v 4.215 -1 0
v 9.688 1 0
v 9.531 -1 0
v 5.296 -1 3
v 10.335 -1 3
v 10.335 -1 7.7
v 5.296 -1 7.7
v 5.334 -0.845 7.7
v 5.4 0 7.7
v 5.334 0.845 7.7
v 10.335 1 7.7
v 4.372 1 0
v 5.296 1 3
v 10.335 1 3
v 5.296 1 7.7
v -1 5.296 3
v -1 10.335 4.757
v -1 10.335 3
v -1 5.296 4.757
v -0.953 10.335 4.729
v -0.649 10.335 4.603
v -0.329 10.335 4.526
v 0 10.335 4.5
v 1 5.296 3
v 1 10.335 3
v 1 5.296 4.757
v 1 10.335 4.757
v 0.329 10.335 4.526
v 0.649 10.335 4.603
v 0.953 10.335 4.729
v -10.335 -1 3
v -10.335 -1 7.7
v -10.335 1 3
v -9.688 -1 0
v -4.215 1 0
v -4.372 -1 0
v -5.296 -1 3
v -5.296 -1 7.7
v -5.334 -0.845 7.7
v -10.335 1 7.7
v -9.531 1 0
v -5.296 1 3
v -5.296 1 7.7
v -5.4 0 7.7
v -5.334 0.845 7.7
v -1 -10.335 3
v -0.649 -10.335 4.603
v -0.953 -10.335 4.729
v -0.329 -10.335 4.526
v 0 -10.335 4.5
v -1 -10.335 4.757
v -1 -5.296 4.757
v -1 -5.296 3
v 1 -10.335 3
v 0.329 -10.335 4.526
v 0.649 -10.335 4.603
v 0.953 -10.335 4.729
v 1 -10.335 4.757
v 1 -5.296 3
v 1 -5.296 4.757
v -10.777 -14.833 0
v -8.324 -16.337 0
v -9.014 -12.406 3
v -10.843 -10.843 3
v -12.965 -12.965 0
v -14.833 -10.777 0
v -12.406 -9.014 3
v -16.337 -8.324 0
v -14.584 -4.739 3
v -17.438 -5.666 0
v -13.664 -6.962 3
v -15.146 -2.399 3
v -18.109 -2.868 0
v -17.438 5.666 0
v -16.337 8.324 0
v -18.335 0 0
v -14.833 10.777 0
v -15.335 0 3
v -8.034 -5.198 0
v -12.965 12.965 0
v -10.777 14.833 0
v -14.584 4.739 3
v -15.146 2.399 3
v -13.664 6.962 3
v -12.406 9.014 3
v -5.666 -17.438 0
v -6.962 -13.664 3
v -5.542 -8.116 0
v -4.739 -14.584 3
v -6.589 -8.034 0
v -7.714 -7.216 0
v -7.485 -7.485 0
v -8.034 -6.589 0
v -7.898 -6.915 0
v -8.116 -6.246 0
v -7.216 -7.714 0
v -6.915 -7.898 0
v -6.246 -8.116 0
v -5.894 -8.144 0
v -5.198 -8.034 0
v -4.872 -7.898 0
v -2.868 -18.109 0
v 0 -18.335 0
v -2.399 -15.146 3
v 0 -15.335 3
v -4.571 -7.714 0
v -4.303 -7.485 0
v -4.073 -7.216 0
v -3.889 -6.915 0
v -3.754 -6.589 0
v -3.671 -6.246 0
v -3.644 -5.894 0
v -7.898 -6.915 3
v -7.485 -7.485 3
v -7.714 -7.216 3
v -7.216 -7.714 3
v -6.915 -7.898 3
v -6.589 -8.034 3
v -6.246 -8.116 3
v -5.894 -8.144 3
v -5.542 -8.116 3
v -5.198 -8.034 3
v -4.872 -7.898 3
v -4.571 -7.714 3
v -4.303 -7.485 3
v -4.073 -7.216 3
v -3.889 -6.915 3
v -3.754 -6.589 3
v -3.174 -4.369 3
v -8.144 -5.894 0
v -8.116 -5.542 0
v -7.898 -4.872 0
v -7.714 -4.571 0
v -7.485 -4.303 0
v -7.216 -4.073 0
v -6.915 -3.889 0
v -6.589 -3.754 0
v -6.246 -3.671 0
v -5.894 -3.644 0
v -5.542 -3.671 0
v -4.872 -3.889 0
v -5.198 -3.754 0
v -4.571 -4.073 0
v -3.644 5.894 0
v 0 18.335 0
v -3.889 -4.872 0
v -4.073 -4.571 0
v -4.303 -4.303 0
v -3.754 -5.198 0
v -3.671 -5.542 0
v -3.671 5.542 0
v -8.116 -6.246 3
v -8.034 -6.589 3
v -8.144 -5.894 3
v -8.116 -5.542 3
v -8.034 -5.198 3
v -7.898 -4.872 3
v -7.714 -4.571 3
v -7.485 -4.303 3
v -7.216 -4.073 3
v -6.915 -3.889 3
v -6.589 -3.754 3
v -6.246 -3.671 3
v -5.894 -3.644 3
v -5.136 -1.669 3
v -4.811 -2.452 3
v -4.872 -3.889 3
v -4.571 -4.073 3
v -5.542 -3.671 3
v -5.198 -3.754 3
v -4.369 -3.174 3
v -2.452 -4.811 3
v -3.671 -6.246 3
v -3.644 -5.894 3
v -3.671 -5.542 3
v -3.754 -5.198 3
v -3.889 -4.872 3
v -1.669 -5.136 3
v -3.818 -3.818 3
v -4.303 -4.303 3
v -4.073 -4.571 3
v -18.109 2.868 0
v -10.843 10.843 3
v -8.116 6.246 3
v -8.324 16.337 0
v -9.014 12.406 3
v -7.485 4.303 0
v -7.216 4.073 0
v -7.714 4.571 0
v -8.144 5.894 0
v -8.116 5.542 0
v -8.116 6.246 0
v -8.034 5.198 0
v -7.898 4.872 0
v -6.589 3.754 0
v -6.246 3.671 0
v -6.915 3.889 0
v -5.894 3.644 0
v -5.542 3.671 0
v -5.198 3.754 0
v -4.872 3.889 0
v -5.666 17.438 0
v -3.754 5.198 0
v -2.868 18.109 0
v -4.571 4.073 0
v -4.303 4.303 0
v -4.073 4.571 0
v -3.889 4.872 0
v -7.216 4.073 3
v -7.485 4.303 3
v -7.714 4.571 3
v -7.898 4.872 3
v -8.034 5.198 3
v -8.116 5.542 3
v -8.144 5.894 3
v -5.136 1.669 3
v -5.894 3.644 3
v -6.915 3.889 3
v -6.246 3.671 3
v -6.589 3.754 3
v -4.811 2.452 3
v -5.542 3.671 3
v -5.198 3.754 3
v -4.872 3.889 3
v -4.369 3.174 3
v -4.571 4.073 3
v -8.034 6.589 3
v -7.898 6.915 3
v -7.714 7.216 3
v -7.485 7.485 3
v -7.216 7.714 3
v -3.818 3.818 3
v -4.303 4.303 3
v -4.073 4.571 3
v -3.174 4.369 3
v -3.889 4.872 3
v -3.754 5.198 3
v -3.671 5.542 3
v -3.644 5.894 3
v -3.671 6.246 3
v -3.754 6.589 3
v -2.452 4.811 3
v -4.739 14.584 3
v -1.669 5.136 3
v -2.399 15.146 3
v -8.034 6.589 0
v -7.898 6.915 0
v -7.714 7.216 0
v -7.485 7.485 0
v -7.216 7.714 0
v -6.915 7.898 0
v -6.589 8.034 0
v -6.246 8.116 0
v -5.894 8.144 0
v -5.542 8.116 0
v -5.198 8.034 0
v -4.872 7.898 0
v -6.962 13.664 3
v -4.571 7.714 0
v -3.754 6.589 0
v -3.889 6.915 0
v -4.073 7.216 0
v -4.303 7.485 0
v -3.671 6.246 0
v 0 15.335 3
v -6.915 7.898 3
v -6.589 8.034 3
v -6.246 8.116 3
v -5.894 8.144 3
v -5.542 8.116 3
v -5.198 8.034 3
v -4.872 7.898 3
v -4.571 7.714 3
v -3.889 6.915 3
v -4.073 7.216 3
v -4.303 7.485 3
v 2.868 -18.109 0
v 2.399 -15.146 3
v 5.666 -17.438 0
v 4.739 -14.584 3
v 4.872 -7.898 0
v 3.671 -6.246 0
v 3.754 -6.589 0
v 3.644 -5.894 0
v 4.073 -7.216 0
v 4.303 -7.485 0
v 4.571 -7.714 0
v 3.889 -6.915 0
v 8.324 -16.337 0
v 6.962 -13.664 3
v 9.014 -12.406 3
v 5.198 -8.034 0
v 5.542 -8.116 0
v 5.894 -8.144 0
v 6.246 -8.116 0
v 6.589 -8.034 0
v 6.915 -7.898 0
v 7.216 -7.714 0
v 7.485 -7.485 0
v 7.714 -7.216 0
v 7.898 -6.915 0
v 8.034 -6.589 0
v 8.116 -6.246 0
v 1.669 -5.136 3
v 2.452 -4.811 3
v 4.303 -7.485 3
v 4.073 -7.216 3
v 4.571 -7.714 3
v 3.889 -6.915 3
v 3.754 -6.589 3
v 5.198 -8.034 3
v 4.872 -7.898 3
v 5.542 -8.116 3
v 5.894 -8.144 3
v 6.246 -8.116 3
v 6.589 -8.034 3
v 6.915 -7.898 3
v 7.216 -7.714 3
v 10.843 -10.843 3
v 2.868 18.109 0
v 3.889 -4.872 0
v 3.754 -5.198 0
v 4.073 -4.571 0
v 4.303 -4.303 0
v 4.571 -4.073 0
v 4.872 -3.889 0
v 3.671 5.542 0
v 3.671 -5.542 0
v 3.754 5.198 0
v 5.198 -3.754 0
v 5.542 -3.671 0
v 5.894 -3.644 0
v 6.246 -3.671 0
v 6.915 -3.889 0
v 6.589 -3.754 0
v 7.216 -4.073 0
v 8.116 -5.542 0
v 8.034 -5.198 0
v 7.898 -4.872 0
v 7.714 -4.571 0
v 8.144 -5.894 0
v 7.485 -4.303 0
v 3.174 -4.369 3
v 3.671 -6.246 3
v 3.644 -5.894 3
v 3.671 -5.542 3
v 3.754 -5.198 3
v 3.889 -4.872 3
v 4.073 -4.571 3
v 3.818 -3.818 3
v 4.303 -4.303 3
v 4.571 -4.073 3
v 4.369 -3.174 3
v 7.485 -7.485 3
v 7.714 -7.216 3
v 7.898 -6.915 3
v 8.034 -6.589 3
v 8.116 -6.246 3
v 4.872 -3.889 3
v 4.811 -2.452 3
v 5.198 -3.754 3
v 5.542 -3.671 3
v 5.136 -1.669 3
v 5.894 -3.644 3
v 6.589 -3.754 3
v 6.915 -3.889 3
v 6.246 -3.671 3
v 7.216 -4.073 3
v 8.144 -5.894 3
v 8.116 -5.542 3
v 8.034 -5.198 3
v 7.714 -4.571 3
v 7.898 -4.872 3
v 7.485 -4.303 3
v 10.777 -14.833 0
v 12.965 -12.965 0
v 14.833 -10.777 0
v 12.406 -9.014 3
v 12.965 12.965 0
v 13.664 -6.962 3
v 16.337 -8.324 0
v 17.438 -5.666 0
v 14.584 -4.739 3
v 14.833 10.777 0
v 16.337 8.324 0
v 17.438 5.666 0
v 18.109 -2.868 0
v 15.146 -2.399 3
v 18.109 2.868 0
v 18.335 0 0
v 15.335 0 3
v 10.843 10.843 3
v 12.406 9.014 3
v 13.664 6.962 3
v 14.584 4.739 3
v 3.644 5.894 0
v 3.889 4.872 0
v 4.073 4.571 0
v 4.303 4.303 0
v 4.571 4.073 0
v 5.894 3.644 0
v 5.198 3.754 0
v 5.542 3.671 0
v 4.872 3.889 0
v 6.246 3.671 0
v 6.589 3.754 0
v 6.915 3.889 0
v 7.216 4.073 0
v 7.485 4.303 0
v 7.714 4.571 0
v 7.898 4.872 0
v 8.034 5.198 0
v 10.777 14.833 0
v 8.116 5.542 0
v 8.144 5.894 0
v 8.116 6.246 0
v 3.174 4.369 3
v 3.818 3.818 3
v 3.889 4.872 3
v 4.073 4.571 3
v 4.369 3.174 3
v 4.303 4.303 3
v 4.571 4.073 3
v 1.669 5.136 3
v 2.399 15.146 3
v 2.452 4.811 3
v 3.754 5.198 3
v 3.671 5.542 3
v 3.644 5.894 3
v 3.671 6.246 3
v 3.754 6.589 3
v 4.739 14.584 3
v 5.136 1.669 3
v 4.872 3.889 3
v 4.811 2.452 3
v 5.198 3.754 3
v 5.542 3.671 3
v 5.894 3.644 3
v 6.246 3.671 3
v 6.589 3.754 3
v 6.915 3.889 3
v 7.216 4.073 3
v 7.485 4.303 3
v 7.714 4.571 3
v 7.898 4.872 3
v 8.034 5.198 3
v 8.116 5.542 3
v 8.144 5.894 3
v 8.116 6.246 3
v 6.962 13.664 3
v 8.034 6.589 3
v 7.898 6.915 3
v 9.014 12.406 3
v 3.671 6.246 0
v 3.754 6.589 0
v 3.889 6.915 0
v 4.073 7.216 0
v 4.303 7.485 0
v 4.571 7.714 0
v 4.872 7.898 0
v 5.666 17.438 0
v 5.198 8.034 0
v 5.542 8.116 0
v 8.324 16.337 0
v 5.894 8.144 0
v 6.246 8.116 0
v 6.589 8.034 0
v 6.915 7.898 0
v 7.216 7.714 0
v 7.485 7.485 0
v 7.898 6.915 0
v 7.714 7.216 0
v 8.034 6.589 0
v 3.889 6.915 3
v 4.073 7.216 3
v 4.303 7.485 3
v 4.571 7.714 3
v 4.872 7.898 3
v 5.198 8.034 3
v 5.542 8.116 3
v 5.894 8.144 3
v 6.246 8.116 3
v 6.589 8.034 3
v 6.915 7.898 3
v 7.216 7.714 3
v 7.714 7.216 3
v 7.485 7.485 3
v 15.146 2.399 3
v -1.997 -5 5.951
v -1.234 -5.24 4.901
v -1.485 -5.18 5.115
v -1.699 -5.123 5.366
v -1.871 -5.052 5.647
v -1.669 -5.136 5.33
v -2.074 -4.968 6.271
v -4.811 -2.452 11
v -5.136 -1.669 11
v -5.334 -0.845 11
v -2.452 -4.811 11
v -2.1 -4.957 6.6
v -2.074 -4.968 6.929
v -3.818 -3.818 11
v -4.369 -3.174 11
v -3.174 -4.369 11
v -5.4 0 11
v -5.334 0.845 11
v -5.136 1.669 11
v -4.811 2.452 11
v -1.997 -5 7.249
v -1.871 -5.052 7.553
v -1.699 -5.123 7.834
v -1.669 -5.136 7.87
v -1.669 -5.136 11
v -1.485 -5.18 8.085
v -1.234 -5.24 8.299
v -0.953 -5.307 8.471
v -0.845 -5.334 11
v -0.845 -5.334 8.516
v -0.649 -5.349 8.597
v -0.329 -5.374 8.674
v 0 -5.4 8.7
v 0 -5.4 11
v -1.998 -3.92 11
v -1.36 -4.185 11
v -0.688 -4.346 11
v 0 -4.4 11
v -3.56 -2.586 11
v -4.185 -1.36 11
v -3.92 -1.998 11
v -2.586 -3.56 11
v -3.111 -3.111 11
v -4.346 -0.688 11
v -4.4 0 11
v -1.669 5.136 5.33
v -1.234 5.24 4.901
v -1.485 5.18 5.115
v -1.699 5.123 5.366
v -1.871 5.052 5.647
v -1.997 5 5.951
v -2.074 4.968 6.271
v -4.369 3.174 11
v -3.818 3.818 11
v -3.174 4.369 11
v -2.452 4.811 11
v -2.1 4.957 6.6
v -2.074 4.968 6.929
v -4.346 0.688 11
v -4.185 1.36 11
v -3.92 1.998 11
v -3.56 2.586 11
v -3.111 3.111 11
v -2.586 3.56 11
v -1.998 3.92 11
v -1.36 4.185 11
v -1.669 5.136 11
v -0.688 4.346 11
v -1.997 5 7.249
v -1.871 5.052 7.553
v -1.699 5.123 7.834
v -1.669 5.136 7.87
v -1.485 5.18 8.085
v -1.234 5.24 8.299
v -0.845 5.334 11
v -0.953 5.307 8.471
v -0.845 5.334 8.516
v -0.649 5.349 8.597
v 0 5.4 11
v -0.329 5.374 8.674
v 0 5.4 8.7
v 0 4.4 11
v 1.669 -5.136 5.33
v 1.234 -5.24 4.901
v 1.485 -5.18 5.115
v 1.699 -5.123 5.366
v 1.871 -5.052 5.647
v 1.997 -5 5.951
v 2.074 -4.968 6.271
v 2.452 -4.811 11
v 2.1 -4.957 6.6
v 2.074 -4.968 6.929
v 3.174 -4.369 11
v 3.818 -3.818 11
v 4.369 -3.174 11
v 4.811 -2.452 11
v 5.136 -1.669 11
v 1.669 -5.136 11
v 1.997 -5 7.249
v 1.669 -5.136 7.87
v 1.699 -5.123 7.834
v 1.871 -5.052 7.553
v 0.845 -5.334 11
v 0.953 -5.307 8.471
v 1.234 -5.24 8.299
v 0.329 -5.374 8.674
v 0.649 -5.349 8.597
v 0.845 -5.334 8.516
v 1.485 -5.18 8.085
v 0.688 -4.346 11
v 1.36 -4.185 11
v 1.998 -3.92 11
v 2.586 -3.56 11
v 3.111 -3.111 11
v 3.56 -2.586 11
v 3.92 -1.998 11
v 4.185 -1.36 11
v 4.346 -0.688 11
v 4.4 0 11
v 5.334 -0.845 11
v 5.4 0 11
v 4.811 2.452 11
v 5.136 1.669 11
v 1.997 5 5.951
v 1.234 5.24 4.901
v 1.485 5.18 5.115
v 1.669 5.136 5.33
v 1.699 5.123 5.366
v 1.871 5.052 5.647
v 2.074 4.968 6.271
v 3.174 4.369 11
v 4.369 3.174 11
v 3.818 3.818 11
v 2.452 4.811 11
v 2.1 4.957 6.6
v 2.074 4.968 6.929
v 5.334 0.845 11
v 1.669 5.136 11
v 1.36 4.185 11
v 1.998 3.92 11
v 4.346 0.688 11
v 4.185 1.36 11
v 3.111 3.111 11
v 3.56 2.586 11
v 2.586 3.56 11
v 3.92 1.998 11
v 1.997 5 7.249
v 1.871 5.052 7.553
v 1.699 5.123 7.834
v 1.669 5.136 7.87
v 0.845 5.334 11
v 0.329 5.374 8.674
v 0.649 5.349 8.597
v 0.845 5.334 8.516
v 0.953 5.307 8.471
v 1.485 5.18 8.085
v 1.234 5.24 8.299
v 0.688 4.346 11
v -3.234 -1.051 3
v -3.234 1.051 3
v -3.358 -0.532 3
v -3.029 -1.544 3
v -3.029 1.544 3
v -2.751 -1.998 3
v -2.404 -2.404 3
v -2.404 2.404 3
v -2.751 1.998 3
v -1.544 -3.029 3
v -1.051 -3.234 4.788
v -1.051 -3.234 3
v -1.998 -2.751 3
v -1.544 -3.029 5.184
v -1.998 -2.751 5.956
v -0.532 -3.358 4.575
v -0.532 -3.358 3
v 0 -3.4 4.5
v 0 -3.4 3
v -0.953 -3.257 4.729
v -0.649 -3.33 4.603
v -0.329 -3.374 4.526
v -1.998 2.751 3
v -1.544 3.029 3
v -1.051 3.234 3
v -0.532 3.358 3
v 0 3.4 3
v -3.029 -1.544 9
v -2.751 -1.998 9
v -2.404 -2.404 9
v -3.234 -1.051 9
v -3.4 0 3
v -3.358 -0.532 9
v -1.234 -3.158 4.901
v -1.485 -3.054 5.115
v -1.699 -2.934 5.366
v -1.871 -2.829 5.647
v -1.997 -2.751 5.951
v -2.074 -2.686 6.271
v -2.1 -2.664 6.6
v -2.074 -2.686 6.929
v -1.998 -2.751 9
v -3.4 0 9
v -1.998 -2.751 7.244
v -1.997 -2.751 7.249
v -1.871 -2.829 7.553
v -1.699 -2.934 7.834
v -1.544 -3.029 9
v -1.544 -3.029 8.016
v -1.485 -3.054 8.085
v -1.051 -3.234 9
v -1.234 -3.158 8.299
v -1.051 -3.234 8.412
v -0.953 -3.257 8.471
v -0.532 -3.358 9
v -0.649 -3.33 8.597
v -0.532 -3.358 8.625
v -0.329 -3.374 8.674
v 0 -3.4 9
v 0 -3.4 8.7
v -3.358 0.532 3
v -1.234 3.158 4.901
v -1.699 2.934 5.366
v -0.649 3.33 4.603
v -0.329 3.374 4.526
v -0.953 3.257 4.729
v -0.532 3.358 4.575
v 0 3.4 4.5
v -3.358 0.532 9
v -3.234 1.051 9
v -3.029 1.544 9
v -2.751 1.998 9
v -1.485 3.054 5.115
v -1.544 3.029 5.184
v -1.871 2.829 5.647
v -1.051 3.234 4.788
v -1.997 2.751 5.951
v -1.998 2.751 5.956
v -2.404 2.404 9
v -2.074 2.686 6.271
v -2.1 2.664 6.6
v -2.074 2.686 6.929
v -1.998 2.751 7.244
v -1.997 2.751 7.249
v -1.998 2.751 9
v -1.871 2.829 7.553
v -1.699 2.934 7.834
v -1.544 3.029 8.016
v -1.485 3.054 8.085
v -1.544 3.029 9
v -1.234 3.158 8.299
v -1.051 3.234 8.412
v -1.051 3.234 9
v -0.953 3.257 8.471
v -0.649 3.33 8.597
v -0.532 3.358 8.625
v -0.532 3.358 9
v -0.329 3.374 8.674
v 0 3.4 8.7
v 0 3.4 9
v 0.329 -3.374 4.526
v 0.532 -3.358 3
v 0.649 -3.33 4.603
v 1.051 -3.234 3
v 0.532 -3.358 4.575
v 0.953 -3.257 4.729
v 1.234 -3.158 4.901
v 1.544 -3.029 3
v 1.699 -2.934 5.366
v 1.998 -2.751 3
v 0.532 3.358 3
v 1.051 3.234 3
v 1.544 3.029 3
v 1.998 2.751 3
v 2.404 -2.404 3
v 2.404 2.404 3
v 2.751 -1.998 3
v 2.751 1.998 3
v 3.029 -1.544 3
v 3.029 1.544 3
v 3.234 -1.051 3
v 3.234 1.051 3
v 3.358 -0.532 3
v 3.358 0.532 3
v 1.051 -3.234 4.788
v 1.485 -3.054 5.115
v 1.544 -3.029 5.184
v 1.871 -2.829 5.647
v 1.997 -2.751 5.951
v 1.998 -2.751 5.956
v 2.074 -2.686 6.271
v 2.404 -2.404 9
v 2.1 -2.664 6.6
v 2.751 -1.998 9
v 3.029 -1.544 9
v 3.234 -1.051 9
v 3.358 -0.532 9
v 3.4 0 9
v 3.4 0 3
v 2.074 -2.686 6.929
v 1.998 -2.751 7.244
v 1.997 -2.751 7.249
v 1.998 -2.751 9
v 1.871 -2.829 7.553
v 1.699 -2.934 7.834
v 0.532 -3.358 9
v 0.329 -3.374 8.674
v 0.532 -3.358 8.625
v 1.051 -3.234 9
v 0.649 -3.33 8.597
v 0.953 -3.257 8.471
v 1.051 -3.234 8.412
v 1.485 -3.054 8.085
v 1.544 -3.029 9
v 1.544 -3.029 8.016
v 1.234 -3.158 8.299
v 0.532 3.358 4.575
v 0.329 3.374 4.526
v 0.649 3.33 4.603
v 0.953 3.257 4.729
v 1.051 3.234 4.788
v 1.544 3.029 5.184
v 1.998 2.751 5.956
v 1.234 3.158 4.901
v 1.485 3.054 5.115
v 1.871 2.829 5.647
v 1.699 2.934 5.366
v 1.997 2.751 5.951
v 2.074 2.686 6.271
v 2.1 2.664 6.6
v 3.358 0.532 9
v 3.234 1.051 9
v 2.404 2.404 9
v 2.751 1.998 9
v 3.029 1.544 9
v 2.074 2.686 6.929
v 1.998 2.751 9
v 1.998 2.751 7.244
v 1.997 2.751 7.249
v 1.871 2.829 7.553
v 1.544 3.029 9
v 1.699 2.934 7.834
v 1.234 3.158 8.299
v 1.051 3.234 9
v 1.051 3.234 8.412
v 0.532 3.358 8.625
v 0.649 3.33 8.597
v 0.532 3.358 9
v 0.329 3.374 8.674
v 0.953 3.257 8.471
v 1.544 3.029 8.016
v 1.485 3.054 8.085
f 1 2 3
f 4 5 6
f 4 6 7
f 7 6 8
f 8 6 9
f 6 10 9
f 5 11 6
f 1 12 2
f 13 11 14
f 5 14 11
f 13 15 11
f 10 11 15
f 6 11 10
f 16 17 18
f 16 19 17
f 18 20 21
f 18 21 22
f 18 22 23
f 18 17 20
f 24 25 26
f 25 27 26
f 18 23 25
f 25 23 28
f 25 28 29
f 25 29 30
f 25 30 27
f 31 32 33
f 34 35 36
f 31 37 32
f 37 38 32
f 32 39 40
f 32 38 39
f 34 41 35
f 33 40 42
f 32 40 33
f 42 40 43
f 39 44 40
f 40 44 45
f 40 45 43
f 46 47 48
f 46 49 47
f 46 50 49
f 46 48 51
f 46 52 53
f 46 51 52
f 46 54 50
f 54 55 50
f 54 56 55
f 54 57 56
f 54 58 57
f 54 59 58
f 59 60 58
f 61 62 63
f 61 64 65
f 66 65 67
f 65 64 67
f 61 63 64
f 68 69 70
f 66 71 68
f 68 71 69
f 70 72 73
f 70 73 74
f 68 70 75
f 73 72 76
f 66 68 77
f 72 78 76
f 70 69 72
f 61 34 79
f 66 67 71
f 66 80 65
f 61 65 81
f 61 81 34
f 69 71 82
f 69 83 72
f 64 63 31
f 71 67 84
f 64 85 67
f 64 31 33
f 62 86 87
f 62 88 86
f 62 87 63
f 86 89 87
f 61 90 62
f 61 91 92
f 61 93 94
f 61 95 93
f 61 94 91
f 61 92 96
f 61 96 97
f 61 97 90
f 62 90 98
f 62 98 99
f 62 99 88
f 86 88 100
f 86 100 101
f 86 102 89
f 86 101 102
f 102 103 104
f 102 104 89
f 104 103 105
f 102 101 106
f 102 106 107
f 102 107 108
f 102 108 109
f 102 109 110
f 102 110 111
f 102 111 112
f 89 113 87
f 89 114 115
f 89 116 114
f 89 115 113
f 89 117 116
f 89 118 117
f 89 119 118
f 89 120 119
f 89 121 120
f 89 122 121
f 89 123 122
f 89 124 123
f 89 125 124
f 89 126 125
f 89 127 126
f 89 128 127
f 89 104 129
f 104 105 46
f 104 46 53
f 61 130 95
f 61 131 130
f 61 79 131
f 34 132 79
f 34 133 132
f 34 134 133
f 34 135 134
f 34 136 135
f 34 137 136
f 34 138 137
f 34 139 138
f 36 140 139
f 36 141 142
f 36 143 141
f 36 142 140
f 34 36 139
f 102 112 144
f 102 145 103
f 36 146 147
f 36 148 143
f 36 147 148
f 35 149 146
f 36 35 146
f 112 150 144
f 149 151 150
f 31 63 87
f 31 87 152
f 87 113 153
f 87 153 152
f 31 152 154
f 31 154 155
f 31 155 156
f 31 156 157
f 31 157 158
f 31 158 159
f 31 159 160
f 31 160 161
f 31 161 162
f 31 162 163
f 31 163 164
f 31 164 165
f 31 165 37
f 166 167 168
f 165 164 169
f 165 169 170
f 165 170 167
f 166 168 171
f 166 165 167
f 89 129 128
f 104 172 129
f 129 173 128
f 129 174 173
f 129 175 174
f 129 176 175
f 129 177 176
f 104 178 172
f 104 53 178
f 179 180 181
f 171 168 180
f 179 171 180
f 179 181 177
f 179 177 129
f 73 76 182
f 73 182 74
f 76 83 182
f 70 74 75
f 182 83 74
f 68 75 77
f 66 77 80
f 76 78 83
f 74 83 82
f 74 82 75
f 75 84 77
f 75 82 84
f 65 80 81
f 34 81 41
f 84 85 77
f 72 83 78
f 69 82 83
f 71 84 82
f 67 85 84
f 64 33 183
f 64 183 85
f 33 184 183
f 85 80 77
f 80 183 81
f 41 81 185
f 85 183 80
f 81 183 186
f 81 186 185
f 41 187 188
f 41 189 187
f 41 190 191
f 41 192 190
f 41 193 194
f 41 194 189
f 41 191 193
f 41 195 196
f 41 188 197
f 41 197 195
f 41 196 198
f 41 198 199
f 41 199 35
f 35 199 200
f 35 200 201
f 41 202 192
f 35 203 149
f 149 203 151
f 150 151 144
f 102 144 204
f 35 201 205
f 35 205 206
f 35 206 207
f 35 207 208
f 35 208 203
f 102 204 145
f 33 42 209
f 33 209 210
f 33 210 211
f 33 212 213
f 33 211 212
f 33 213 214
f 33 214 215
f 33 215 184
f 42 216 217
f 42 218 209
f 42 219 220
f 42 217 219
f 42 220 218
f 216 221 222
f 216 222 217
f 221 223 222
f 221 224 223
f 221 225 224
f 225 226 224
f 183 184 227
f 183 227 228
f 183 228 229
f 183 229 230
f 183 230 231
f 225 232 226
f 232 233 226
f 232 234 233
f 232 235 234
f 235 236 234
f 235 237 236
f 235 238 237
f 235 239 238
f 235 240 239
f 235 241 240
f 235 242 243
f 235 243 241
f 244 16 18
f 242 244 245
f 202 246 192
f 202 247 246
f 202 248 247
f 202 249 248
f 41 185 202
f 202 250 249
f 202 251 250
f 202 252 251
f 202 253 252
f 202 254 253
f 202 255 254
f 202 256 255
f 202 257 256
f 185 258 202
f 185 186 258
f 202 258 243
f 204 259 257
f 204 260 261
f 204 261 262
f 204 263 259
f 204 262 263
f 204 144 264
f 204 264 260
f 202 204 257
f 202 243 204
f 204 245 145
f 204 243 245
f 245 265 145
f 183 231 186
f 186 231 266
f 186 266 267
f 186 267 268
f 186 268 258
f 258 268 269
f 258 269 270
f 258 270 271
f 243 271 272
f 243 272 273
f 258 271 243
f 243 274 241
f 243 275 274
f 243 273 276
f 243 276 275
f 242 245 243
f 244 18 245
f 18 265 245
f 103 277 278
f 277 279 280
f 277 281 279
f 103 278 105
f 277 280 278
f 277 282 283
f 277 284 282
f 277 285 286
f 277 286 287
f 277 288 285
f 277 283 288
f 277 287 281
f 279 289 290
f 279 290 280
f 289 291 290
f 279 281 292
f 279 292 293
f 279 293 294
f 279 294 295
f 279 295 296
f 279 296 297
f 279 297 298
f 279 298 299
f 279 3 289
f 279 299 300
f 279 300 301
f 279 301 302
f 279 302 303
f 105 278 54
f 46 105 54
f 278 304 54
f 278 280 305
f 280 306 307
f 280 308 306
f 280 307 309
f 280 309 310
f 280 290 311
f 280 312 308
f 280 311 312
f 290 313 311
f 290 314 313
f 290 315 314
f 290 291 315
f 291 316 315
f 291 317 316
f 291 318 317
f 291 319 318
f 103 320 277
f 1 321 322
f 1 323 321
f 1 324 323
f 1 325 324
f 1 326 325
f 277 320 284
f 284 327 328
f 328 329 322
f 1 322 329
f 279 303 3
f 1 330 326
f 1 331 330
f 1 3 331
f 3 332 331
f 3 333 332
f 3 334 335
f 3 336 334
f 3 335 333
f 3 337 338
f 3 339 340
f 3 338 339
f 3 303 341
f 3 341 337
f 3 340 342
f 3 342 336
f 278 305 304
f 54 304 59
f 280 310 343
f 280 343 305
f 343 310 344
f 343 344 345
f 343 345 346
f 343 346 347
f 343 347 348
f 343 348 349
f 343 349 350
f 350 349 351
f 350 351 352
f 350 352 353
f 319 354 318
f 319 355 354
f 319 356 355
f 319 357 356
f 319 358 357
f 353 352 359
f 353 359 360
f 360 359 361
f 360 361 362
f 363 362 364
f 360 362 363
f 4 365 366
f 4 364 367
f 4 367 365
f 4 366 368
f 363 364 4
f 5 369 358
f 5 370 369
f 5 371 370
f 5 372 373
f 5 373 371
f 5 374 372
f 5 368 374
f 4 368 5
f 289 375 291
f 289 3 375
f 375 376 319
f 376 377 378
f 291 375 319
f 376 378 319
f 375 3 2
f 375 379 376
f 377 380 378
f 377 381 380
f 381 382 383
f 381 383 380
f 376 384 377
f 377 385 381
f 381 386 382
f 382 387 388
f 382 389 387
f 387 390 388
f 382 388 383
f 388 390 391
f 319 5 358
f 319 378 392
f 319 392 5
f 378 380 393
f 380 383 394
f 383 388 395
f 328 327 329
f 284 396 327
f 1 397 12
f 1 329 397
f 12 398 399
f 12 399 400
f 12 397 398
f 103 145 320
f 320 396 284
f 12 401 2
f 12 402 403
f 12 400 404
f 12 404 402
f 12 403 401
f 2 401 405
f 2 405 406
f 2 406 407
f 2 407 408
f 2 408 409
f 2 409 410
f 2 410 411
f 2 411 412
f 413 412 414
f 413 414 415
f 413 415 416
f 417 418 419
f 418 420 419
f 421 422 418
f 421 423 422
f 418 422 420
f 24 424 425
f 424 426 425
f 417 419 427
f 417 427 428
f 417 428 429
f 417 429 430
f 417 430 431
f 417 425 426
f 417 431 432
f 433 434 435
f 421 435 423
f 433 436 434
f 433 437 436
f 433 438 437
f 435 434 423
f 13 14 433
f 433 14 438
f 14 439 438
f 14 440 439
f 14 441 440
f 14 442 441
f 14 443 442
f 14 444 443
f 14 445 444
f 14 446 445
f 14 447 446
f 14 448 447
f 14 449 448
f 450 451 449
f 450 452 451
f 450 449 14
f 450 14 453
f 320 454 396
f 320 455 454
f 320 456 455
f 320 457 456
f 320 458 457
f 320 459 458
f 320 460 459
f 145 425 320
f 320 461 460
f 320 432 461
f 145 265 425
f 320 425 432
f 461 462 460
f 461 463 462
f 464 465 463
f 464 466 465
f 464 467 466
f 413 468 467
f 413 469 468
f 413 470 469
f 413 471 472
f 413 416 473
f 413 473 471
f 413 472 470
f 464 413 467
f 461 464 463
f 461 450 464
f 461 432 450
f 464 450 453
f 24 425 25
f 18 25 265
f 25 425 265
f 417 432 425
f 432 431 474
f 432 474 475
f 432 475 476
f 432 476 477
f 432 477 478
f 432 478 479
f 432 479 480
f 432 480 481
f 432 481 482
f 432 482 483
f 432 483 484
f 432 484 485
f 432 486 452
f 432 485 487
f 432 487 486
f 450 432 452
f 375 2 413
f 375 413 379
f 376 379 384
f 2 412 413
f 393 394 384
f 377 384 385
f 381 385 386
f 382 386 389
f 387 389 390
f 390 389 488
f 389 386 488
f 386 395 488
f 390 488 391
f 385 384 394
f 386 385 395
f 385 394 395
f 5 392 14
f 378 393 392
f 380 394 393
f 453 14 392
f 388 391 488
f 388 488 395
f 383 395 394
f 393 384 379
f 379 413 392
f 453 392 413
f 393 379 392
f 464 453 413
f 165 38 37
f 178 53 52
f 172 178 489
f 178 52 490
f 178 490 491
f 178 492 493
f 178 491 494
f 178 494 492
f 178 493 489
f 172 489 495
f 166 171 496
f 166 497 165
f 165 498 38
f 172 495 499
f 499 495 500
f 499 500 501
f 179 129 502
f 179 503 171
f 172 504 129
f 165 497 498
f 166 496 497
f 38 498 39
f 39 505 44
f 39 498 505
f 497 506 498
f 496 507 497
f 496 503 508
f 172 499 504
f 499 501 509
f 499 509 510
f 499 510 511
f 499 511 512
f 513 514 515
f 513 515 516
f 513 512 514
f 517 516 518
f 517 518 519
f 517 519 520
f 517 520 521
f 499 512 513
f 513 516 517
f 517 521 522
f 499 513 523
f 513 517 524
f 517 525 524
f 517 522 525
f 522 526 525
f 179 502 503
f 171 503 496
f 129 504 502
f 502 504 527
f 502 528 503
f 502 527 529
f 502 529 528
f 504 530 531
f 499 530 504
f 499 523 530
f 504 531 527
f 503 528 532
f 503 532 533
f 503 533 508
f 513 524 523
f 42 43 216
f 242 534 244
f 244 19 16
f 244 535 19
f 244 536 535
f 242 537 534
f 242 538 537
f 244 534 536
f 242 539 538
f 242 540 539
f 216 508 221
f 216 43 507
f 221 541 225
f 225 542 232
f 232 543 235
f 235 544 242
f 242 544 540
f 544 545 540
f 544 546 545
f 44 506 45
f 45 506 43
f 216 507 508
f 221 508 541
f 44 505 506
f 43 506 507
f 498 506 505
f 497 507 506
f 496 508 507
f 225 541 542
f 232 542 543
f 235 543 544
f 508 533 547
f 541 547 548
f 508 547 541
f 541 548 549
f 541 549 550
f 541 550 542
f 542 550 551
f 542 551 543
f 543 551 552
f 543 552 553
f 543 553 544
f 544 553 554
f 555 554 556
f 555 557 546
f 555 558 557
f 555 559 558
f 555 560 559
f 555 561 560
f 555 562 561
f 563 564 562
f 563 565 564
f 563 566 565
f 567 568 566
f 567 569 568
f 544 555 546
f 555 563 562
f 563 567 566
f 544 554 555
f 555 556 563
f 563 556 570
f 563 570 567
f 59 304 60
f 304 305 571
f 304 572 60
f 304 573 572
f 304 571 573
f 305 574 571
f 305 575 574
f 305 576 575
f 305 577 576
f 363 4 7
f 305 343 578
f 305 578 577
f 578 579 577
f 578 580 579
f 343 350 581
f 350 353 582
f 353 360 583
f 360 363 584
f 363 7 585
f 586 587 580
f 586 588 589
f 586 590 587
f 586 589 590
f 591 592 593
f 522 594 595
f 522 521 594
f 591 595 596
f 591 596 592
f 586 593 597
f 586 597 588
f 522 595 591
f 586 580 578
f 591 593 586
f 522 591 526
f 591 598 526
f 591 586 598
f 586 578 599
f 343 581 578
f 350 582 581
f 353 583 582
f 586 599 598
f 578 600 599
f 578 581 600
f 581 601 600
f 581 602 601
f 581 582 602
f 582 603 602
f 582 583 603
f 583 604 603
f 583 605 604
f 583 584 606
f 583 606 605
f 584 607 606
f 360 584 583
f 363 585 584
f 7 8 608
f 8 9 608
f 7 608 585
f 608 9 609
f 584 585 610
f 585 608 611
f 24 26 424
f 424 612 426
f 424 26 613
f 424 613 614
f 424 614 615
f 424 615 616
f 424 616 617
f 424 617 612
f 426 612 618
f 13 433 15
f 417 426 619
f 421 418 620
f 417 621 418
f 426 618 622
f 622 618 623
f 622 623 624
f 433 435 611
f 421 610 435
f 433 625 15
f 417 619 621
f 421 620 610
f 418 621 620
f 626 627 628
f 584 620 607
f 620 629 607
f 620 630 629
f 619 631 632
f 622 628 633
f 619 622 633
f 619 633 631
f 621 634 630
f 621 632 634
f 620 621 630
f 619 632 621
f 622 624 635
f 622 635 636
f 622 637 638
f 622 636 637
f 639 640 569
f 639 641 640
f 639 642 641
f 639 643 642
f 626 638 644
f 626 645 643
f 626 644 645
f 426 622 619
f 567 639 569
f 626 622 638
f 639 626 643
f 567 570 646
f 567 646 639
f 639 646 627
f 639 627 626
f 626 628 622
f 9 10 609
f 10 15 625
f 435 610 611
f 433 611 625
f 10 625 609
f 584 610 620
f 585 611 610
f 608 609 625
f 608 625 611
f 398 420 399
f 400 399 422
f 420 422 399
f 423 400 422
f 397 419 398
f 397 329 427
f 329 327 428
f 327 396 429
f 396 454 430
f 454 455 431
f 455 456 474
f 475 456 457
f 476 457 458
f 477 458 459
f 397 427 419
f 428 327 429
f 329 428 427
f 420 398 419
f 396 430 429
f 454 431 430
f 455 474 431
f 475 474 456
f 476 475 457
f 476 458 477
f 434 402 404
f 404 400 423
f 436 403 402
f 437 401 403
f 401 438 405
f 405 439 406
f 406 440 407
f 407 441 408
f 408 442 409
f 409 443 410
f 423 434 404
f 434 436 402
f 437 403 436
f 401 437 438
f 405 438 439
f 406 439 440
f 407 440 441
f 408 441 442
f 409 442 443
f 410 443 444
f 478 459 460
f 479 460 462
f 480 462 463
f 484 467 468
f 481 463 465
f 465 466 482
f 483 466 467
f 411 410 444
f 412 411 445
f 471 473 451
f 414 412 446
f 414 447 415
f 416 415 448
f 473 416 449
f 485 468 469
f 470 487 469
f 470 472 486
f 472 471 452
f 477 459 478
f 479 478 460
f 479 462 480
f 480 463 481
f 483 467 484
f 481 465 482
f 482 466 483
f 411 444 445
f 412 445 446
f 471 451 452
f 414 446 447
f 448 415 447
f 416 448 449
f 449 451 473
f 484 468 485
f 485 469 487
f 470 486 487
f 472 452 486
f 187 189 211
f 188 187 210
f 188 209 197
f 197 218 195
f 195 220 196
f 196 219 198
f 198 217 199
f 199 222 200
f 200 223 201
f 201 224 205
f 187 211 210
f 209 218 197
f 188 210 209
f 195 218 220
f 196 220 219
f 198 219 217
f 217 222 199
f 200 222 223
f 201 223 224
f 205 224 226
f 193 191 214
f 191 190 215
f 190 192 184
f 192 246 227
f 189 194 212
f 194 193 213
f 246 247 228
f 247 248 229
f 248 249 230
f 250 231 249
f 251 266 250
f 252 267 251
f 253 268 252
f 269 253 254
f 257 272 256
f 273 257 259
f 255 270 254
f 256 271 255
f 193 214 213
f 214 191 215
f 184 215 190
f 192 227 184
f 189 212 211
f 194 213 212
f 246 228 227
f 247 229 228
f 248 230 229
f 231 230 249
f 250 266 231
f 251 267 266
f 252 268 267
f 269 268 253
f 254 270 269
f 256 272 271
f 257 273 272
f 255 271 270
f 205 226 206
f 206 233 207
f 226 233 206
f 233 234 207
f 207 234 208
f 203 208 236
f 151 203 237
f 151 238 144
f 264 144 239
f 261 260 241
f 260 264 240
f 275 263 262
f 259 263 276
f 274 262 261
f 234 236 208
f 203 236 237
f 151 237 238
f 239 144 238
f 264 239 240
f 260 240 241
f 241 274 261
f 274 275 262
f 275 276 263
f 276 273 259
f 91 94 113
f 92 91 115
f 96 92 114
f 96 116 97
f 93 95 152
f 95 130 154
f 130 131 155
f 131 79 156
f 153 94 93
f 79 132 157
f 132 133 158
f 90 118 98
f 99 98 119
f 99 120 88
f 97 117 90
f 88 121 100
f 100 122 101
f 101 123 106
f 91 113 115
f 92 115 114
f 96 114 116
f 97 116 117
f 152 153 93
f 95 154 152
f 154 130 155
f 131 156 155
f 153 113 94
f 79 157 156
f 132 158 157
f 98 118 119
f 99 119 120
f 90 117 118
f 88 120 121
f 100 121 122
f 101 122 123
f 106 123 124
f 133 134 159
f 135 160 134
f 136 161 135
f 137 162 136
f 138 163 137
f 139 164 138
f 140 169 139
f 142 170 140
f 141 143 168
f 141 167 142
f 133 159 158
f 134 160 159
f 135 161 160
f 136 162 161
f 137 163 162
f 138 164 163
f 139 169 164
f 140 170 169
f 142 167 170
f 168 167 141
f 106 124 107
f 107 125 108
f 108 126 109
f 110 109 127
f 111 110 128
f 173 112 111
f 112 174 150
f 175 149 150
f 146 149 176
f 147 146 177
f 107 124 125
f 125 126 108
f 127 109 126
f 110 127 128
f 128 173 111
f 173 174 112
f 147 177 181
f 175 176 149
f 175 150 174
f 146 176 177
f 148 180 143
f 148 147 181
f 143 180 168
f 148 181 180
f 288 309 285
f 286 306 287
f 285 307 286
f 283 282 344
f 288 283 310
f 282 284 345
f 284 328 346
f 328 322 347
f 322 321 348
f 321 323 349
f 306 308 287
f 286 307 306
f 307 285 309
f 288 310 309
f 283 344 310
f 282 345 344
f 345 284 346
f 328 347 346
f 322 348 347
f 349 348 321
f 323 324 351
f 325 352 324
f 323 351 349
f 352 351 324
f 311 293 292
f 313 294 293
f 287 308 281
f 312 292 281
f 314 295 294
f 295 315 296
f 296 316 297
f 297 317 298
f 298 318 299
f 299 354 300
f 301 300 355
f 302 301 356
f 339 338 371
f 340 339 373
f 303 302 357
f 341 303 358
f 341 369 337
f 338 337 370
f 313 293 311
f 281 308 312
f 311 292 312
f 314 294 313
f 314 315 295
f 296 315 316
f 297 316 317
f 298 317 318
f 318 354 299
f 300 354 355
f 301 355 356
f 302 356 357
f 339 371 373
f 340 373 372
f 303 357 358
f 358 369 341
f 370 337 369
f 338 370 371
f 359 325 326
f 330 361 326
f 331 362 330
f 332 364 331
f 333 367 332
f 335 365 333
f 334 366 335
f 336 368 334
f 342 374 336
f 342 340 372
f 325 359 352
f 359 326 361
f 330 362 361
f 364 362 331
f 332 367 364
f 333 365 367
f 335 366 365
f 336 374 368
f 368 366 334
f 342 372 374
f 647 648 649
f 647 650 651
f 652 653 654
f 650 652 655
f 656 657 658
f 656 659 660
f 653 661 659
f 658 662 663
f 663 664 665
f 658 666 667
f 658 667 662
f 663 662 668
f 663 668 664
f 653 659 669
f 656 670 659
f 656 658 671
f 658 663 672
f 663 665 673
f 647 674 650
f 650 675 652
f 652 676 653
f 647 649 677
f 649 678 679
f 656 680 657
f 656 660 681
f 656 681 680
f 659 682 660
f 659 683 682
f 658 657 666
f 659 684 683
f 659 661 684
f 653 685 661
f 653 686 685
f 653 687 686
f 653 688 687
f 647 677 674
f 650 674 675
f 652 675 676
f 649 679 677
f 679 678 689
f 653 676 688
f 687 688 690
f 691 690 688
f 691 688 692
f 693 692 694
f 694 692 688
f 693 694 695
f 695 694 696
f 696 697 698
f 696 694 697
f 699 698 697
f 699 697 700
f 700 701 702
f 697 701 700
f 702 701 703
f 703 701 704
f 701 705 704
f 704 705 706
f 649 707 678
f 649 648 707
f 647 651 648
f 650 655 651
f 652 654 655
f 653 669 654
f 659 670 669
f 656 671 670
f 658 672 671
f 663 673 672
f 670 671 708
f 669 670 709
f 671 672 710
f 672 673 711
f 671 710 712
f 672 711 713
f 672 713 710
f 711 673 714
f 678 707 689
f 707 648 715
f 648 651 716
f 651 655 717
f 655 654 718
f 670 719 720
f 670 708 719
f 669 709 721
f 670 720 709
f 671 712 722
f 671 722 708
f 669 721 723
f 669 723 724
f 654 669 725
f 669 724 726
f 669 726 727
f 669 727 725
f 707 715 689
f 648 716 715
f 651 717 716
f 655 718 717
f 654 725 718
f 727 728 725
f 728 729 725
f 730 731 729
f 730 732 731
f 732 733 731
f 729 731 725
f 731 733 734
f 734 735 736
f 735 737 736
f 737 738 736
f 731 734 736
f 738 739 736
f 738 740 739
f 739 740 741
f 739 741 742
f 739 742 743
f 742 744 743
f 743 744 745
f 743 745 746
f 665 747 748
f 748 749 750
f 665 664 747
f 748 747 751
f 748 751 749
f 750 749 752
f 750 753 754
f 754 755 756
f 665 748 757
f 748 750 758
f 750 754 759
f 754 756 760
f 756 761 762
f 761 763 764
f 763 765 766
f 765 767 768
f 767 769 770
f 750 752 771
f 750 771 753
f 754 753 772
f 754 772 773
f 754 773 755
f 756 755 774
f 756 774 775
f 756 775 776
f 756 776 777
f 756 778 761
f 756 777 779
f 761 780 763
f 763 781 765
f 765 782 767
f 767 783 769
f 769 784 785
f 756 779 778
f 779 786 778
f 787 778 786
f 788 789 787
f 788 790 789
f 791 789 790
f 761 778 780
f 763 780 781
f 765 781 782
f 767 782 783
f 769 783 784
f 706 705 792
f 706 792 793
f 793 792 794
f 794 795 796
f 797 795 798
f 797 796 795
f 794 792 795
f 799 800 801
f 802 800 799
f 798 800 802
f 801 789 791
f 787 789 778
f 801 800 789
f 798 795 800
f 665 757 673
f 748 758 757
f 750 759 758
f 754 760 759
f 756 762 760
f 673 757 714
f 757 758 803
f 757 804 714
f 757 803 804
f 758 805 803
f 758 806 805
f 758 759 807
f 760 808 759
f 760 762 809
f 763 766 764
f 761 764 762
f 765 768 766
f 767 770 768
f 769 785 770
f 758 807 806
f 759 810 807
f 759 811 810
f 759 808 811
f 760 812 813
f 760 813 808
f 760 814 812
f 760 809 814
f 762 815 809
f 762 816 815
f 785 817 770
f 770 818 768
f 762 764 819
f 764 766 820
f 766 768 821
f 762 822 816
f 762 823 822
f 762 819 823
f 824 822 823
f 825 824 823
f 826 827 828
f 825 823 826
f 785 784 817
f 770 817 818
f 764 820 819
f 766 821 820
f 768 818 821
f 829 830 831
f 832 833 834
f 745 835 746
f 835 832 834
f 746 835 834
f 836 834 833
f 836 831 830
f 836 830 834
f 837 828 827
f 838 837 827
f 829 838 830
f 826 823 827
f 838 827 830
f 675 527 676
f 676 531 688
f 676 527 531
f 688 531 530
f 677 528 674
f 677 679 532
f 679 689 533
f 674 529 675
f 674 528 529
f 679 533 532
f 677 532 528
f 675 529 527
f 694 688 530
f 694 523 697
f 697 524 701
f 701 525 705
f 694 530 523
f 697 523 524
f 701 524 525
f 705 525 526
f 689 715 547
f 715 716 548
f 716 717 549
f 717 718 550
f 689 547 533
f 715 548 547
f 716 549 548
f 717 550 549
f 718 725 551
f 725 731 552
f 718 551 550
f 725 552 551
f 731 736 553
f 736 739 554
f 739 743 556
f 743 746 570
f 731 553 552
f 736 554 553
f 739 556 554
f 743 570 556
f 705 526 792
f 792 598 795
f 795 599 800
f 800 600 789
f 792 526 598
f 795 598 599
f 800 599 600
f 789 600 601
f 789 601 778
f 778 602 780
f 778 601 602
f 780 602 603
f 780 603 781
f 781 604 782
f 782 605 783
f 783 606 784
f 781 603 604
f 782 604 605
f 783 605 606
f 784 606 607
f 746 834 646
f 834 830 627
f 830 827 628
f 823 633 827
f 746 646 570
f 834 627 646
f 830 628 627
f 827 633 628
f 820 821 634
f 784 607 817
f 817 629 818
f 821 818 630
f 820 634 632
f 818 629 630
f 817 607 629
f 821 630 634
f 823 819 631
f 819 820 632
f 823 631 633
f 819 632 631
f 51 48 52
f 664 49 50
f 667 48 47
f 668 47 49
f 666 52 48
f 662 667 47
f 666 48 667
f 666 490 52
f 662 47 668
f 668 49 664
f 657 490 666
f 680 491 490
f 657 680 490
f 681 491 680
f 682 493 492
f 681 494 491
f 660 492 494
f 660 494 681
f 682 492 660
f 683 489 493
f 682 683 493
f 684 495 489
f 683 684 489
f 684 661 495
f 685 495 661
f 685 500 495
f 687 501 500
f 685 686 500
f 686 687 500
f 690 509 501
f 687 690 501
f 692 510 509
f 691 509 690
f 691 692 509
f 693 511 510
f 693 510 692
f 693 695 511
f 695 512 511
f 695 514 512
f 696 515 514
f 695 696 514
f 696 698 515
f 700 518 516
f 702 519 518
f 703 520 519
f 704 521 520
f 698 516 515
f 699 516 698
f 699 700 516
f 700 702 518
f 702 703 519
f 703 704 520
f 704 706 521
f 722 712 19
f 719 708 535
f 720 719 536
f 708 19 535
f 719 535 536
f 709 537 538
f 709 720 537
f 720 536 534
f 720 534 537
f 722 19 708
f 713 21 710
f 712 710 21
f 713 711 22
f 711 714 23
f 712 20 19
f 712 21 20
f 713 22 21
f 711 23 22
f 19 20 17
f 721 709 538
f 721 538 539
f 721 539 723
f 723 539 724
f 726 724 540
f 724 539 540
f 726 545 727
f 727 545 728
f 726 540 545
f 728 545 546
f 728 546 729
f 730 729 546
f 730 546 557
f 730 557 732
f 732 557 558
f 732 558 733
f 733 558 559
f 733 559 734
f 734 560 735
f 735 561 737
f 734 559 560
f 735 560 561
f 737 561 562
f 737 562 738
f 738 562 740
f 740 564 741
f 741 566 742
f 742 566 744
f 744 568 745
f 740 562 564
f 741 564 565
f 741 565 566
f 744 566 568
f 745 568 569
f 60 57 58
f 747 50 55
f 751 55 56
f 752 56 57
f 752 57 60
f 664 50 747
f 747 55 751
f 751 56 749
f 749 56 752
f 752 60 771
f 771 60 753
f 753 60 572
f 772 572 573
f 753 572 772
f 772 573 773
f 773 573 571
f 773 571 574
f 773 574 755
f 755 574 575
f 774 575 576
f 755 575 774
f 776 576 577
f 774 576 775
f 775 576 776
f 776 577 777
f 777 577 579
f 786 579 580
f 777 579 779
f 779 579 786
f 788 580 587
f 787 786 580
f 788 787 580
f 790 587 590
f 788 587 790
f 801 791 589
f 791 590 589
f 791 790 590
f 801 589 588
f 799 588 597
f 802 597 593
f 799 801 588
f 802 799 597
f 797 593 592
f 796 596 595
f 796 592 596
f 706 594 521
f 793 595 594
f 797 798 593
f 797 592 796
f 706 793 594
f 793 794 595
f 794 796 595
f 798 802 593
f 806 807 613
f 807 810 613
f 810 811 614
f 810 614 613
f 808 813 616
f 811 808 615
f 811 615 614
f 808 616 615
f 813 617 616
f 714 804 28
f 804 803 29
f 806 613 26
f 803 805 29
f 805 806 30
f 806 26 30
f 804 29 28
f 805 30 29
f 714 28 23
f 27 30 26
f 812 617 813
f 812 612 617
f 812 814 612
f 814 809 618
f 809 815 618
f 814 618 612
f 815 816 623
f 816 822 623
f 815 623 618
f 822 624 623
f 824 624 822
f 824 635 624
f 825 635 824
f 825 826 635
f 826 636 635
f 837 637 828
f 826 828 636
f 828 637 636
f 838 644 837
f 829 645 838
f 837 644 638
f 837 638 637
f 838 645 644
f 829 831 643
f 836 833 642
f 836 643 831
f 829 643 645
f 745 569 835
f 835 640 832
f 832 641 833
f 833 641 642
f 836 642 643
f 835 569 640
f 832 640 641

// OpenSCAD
// ====================================================================
// Tower Base & Modular Mast (100% 3D-Printable)
// 
// Features:
// - Wide, stable holiday-styled baseplate (can be clamped, screwed, or weighted)
// - 20mm upper socket accepts:
//     Option A: Standard wooden dowel or PVC pipe (custom height)
//     Option B: Stackable 3D-printed lattice mast segments (provided below)
// ====================================================================

$fn = 40;

base_dia       = 36.67; // Wide footprint [scaled from 110mm]
base_th        = 3.0;   // Base thickness [scaled from 8mm]
socket_inner_d = 6.8;   // Fits scaled 6.8mm mast plug [scaled from 20.4mm]
socket_wall    = 2.0;   // Wall thickness
socket_h       = 11.0;  // Socket column height [scaled from 32mm]


// 1. Sturdy Baseplate
module tower_base() {
    difference() {
        union() {
            // Main disc with beveled edge
            cylinder(d1 = base_dia, d2 = base_dia - 6, h = base_th);
            
            // Central socket column
            translate([0, 0, 0])
                cylinder(d = socket_inner_d + (socket_wall * 2), h = socket_h);
                
            // 4x Rigid support ribs
            for (a = [0 : 90 : 270]) {
                rotate([0, 0, a])
                    translate([socket_inner_d / 2, -socket_wall / 2, 0])
                        cube([base_dia / 2 - socket_inner_d / 2 - 8, socket_wall, socket_h * 0.7]);
            }
        }

        // Central dowel/mast socket with self-centering lead-in chamfer
        translate([0, 0, 3])
            cylinder(d = socket_inner_d, h = socket_h + 2);
        translate([0, 0, socket_h - 2])
            cylinder(d1 = socket_inner_d, d2 = socket_inner_d + 3.0, h = 3.0);

        // 4x Perimeter screw/mounting holes (optional hold-down screws/clamps)
        for (a = [45 : 90 : 315]) {
            rotate([0, 0, a])
                translate([base_dia / 2 - 10, 0, -1])
                    cylinder(d = 4.5, h = base_th + 4);
        }

        // Cross-pin clamp hole for socket
        translate([0, 0, socket_h * 0.6])
            rotate([90, 0, 0])
                cylinder(d = 4.2, h = socket_inner_d + 16, center = true);
    }
}

// 2. Optional 3D-Printable Lattice Mast Segment (Stackable)
module tower_mast_segment(height = 40) {
    difference() {
        union() {
            // Main lattice column
            cylinder(d = 6.6, h = height);
            
            // Lower plug that fits into tower_base socket
            translate([0, 0, -8])
                cylinder(d = 6.6, h = 8);
        }
        
        // Upper receiving socket for stacking another segment or tower head
        translate([0, 0, height - 8])
            cylinder(d = socket_inner_d, h = 9);
            
        // Hollow interior for lightness / wiring
        cylinder(d = 3.6, h = height + 10, center = true);
        
        // Decorative / lightweight lattice cutouts
        for (z = [6 : 8 : height - 6]) {
            translate([0, 0, z])
                rotate([90, 0, 0])
                    cylinder(d = 3.5, h = 10, center = true);
            translate([0, 0, z + 4])
                rotate([0, 90, 0])
                    cylinder(d = 3.5, h = 10, center = true);
        }
    }
}


// ====================================================================
// Selection
// ====================================================================
part = "base"; // "base" or "mast"

if (part == "base") {
    tower_base();
} else if (part == "mast") {
    tower_mast_segment(100);
}
